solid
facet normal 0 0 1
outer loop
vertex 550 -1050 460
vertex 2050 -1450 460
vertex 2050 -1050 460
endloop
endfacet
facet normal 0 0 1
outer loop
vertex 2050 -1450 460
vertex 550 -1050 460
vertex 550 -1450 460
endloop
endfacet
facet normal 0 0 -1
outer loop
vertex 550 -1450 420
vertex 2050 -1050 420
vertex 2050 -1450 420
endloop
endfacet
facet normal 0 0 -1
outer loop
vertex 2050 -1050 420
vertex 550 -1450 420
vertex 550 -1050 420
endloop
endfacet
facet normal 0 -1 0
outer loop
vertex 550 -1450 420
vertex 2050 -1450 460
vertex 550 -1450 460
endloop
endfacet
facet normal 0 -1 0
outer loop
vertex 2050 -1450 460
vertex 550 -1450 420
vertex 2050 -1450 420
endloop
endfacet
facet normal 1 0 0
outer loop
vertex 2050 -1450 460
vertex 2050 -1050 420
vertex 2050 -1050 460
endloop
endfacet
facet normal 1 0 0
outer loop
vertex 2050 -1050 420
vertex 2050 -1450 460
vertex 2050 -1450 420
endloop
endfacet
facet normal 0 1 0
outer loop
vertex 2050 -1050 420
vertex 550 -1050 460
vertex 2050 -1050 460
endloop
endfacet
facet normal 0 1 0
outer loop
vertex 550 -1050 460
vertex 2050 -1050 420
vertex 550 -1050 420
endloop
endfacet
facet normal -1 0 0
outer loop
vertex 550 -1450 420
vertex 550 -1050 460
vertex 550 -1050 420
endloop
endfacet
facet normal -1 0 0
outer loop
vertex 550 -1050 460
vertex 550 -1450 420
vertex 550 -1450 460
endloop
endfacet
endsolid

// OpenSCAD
// file: tea_shop_furniture_parameters.scad
// =============================================================================
// TEA SHOP DIORAMA — GROUP 6: EXTERIOR FURNITURE PARAMETERS
// =============================================================================
// All units: mm (1000 mm = 1.0 m), 1:1 real-world scale (1000 units = 1 GTA unit).
// Shared global coordinate system (identical to Groups 1–5):
//   +X -> left -> right  (0 = left outer wall, BUILD_W = right outer wall)
//   +Y -> front -> back  (0 = front wall eave face, BUILD_D = back wall, porch in -Y)
//   +Z -> up             (0 = top surface of base slab / ground datum)
// =============================================================================

// =============================================================================
// 1. SHARED GLOBAL VARIABLES (Reused from Groups 1–5 — identical values)
// =============================================================================
WALL_T             = 250;   // wall panel thickness                      (0.25 m)
BUILD_W            = 6000;  // building width along X                    (6.00 m)
BUILD_D            = 4000;  // building depth along Y                    (4.00 m)
FRONT_H            = 2400;  // wall height at FRONT eave (short side)    (2.40 m)
WIN_X              = 600;   // left pier width / window start X datum    (0.60 m)
WIN_W              = 3400;  // service window width                      (3.40 m)
SILL_H             = 900;   // knee-wall sill height beneath window      (0.90 m)
BASE_H             = 200;   // base plinth vertical thickness            (0.20 m)
BASE_MARGIN_FRONT  = 3000;  // front porch slab depth (extends to Y=-3m) (3.00 m)

// Aliases for compatibility with earlier group files:
wall_thickness     = WALL_T;
building_width     = BUILD_W;
building_depth     = BUILD_D;
front_eave_height  = FRONT_H;
sill_height        = SILL_H;
base_front_margin  = BASE_MARGIN_FRONT;


// =============================================================================
// 2. GROUP 6 PARAMETERS — BENCH (Long Wooden Porch Bench)
// =============================================================================
// REFERENCE OBSERVATIONS (Images: page 1/2 daylight/night, page 5 clay,
// page 7 front elevation, page 8 wireframe, page 14 eye-level):
//
// 1. Bench Style & Proportions:
//    - Simple utilitarian Indian roadside tea stall wooden bench.
//    - Single flat solid rectangular wooden plank for the seat.
//    - Two leg assemblies (one at each end). Wireframe (page 8) and clay (page 5)
//      confirm each leg pair is NOT a solid A-frame slab, but TWO straight
//      square timber posts tied together under the seat by a horizontal cross
//      apron rail. The posts are vertical (0 deg angle) with inset mounting.
//    - Bench height is roughly half the window sill height:
//      SILL_H = 900 mm -> BENCH_HEIGHT = 460 mm (~18 inches standard seating).
//    - Bench length spans ~1500 mm, comfortably seating 3-4 patrons.
//    - Bench width is ~400 mm (standard 16-inch bench seat).
//
// [ESTIMATED DIMENSIONS NOTE]:
// - Bench top thickness (40 mm) estimated from front elevation pixel ratio
//   (~1/11 of bench height).
// - Leg post cross-section (45x45 mm) estimated from wireframe edge density.
// - Inset of legs from ends (80 mm) and edges (17.5 mm) estimated from clay shot.
// - Bench X position (X = 550 mm) sits under the left pier and left edge of
//   the service window, leaving clear passage to the counter and door.
// - Bench Y position (Y = -1250 mm) sits centrally under the pergola canopy
//   (between wall Y=0 and front post line Y=-2250 mm).
BENCH_LENGTH          = 1500; // bench seat plank length along X (mm)
BENCH_WIDTH           = 400;  // bench seat plank width along Y (mm)
BENCH_HEIGHT          = 460;  // total seat height from ground (Z=0) to top face (mm)
BENCH_TOP_THICKNESS   = 40;   // thickness of seat top plank (mm)

// Bench Leg Pair (2 posts + top cross apron rail per end):
BENCH_LEG_SIZE        = 45;   // square timber leg cross-section (45x45 mm)
BENCH_LEG_ANGLE       = 0;    // leg angle from vertical (0 deg = straight vertical posts)
BENCH_LEG_PAIR_WIDTH  = 320;  // center-to-center span across Y of the 2 end legs (mm)
                              // Outer edge-to-edge span = 320 + 45 = 365 mm
                              // Leaves (400 - 365)/2 = 17.5 mm front/back overhang
BENCH_LEG_INSET_X     = 80;   // inset of leg center from left/right plank ends (mm)
BENCH_APRON_WIDTH     = 30;   // thickness of horizontal cross apron rail along X (mm)
BENCH_APRON_HEIGHT    = 50;   // vertical height of horizontal cross apron rail (mm)

// Bench Porch Placement (World Coordinates):
BENCH_POS_X           = 550;  // left edge X coordinate of bench top (mm)
BENCH_POS_Y           = -1250;// center Y coordinate of bench (mm)
                              // Back edge is at Y = -1050 mm, Front edge at Y = -1450 mm
BENCH_ROT_Z           = 0;    // rotation angle about Z (0 = parallel to front wall)


// =============================================================================
// 3. GROUP 6 PARAMETERS — STOOLS (Round Wooden Porch Stools)
// =============================================================================
// REFERENCE OBSERVATIONS (Images: page 1/2, page 5 clay, page 7 elevation,
// page 8 wireframe, page 13 interior close-up, page 14 eye-level):
//
// 1. Stool Style & Proportions:
//    - Round wooden top seat disc with bevel/slight chamfer, resting on
//      4 splayed square timber legs.
//    - Polycount optimization: 12-sided cylinder ( = 12) provides a clean,
//      authentic round silhouette while keeping polycount low for GTA V MLO props.
//    - Stool height is 450 mm (level with the bench, exactly half the 900mm sill).
//    - Seat diameter is 300 mm (~12 inches), standard for street tea stalls.
//    - Legs splay outward slightly from under the seat disc (angle ~3.5 deg),
//      ensuring stability while remaining inside the seat diameter footprint at the base.
//
// 2. Stool Clustering Layout:
//    - The reference images show 3 stools clustered together directly in front of
//      the counter window (X = 2500..3400 mm), where patrons sit to drink tea.
//    - They are NOT placed on a rigid grid:
//        * Stool 1: [2550, -1550] — front-left of the cluster, closer to walkway
//        * Stool 2: [2850, -1050] — back-mid of the cluster, closer to counter window
//        * Stool 3: [3350, -1400] — front-right of the cluster, near entrance path
//
// [ESTIMATED DIMENSIONS NOTE]:
// - Seat thickness (35 mm) estimated from front elevation and wireframe.
// - Leg cross-section (30x30 mm) estimated from wireframe edge density.
// - Splay angle (3.5 deg) estimated from wireframe slope relative to vertical.
STOOL_HEIGHT          = 450;  // total height to top of stool seat (mm)
STOOL_SEAT_DIA        = 300;  // round seat disc diameter (mm)
STOOL_SEAT_RADIUS     = STOOL_SEAT_DIA / 2; // 150 mm
STOOL_SEAT_THICKNESS  = 35;   // seat disc thickness (mm)

// Stool Leg Dimensions:
STOOL_LEG_SIZE        = 30;   // square timber leg cross-section (30x30 mm)
STOOL_LEG_SPLAY_ANGLE = 3.5;  // outward splay angle from vertical (degrees)
STOOL_LEG_RADIUS_TOP  = 95;   // radial distance of leg center from stool center at top (mm)
                              // Leaves 150 - (95 + 15) = 40 mm seat lip overhang

// Derived stool leg length along its angled axis:
STOOL_LEG_H           = STOOL_HEIGHT - STOOL_SEAT_THICKNESS; // vertical leg span (415 mm)
STOOL_LEG_LEN         = STOOL_LEG_H / cos(STOOL_LEG_SPLAY_ANGLE); // angled length (~415.78 mm)

// Low-poly curvature resolution for MLO optimization:
STOOL_FN              = 12;   // 12-sided polygon for round seat disc (MLO target)

// Stool Positions Array (3 clustered [X, Y] coordinates on the porch):
STOOL_POSITIONS = [
    [2550, -1550],  // Stool 1: Front-Left
    [2850, -1050],  // Stool 2: Back-Mid (near counter)
    [3350, -1400]   // Stool 3: Front-Right (near entrance)
];
// main file
// =============================================================================
// TEA SHOP DIORAMA — GROUP 6: BENCH TOP (SEAT PLANK)
// =============================================================================
// Standalone export for the bench seat plank.
// Positioned directly in world coordinates on top of the base slab.
// =============================================================================

include <tea_shop_furniture_modules.scad>;

bench_top(world_pos = true);
